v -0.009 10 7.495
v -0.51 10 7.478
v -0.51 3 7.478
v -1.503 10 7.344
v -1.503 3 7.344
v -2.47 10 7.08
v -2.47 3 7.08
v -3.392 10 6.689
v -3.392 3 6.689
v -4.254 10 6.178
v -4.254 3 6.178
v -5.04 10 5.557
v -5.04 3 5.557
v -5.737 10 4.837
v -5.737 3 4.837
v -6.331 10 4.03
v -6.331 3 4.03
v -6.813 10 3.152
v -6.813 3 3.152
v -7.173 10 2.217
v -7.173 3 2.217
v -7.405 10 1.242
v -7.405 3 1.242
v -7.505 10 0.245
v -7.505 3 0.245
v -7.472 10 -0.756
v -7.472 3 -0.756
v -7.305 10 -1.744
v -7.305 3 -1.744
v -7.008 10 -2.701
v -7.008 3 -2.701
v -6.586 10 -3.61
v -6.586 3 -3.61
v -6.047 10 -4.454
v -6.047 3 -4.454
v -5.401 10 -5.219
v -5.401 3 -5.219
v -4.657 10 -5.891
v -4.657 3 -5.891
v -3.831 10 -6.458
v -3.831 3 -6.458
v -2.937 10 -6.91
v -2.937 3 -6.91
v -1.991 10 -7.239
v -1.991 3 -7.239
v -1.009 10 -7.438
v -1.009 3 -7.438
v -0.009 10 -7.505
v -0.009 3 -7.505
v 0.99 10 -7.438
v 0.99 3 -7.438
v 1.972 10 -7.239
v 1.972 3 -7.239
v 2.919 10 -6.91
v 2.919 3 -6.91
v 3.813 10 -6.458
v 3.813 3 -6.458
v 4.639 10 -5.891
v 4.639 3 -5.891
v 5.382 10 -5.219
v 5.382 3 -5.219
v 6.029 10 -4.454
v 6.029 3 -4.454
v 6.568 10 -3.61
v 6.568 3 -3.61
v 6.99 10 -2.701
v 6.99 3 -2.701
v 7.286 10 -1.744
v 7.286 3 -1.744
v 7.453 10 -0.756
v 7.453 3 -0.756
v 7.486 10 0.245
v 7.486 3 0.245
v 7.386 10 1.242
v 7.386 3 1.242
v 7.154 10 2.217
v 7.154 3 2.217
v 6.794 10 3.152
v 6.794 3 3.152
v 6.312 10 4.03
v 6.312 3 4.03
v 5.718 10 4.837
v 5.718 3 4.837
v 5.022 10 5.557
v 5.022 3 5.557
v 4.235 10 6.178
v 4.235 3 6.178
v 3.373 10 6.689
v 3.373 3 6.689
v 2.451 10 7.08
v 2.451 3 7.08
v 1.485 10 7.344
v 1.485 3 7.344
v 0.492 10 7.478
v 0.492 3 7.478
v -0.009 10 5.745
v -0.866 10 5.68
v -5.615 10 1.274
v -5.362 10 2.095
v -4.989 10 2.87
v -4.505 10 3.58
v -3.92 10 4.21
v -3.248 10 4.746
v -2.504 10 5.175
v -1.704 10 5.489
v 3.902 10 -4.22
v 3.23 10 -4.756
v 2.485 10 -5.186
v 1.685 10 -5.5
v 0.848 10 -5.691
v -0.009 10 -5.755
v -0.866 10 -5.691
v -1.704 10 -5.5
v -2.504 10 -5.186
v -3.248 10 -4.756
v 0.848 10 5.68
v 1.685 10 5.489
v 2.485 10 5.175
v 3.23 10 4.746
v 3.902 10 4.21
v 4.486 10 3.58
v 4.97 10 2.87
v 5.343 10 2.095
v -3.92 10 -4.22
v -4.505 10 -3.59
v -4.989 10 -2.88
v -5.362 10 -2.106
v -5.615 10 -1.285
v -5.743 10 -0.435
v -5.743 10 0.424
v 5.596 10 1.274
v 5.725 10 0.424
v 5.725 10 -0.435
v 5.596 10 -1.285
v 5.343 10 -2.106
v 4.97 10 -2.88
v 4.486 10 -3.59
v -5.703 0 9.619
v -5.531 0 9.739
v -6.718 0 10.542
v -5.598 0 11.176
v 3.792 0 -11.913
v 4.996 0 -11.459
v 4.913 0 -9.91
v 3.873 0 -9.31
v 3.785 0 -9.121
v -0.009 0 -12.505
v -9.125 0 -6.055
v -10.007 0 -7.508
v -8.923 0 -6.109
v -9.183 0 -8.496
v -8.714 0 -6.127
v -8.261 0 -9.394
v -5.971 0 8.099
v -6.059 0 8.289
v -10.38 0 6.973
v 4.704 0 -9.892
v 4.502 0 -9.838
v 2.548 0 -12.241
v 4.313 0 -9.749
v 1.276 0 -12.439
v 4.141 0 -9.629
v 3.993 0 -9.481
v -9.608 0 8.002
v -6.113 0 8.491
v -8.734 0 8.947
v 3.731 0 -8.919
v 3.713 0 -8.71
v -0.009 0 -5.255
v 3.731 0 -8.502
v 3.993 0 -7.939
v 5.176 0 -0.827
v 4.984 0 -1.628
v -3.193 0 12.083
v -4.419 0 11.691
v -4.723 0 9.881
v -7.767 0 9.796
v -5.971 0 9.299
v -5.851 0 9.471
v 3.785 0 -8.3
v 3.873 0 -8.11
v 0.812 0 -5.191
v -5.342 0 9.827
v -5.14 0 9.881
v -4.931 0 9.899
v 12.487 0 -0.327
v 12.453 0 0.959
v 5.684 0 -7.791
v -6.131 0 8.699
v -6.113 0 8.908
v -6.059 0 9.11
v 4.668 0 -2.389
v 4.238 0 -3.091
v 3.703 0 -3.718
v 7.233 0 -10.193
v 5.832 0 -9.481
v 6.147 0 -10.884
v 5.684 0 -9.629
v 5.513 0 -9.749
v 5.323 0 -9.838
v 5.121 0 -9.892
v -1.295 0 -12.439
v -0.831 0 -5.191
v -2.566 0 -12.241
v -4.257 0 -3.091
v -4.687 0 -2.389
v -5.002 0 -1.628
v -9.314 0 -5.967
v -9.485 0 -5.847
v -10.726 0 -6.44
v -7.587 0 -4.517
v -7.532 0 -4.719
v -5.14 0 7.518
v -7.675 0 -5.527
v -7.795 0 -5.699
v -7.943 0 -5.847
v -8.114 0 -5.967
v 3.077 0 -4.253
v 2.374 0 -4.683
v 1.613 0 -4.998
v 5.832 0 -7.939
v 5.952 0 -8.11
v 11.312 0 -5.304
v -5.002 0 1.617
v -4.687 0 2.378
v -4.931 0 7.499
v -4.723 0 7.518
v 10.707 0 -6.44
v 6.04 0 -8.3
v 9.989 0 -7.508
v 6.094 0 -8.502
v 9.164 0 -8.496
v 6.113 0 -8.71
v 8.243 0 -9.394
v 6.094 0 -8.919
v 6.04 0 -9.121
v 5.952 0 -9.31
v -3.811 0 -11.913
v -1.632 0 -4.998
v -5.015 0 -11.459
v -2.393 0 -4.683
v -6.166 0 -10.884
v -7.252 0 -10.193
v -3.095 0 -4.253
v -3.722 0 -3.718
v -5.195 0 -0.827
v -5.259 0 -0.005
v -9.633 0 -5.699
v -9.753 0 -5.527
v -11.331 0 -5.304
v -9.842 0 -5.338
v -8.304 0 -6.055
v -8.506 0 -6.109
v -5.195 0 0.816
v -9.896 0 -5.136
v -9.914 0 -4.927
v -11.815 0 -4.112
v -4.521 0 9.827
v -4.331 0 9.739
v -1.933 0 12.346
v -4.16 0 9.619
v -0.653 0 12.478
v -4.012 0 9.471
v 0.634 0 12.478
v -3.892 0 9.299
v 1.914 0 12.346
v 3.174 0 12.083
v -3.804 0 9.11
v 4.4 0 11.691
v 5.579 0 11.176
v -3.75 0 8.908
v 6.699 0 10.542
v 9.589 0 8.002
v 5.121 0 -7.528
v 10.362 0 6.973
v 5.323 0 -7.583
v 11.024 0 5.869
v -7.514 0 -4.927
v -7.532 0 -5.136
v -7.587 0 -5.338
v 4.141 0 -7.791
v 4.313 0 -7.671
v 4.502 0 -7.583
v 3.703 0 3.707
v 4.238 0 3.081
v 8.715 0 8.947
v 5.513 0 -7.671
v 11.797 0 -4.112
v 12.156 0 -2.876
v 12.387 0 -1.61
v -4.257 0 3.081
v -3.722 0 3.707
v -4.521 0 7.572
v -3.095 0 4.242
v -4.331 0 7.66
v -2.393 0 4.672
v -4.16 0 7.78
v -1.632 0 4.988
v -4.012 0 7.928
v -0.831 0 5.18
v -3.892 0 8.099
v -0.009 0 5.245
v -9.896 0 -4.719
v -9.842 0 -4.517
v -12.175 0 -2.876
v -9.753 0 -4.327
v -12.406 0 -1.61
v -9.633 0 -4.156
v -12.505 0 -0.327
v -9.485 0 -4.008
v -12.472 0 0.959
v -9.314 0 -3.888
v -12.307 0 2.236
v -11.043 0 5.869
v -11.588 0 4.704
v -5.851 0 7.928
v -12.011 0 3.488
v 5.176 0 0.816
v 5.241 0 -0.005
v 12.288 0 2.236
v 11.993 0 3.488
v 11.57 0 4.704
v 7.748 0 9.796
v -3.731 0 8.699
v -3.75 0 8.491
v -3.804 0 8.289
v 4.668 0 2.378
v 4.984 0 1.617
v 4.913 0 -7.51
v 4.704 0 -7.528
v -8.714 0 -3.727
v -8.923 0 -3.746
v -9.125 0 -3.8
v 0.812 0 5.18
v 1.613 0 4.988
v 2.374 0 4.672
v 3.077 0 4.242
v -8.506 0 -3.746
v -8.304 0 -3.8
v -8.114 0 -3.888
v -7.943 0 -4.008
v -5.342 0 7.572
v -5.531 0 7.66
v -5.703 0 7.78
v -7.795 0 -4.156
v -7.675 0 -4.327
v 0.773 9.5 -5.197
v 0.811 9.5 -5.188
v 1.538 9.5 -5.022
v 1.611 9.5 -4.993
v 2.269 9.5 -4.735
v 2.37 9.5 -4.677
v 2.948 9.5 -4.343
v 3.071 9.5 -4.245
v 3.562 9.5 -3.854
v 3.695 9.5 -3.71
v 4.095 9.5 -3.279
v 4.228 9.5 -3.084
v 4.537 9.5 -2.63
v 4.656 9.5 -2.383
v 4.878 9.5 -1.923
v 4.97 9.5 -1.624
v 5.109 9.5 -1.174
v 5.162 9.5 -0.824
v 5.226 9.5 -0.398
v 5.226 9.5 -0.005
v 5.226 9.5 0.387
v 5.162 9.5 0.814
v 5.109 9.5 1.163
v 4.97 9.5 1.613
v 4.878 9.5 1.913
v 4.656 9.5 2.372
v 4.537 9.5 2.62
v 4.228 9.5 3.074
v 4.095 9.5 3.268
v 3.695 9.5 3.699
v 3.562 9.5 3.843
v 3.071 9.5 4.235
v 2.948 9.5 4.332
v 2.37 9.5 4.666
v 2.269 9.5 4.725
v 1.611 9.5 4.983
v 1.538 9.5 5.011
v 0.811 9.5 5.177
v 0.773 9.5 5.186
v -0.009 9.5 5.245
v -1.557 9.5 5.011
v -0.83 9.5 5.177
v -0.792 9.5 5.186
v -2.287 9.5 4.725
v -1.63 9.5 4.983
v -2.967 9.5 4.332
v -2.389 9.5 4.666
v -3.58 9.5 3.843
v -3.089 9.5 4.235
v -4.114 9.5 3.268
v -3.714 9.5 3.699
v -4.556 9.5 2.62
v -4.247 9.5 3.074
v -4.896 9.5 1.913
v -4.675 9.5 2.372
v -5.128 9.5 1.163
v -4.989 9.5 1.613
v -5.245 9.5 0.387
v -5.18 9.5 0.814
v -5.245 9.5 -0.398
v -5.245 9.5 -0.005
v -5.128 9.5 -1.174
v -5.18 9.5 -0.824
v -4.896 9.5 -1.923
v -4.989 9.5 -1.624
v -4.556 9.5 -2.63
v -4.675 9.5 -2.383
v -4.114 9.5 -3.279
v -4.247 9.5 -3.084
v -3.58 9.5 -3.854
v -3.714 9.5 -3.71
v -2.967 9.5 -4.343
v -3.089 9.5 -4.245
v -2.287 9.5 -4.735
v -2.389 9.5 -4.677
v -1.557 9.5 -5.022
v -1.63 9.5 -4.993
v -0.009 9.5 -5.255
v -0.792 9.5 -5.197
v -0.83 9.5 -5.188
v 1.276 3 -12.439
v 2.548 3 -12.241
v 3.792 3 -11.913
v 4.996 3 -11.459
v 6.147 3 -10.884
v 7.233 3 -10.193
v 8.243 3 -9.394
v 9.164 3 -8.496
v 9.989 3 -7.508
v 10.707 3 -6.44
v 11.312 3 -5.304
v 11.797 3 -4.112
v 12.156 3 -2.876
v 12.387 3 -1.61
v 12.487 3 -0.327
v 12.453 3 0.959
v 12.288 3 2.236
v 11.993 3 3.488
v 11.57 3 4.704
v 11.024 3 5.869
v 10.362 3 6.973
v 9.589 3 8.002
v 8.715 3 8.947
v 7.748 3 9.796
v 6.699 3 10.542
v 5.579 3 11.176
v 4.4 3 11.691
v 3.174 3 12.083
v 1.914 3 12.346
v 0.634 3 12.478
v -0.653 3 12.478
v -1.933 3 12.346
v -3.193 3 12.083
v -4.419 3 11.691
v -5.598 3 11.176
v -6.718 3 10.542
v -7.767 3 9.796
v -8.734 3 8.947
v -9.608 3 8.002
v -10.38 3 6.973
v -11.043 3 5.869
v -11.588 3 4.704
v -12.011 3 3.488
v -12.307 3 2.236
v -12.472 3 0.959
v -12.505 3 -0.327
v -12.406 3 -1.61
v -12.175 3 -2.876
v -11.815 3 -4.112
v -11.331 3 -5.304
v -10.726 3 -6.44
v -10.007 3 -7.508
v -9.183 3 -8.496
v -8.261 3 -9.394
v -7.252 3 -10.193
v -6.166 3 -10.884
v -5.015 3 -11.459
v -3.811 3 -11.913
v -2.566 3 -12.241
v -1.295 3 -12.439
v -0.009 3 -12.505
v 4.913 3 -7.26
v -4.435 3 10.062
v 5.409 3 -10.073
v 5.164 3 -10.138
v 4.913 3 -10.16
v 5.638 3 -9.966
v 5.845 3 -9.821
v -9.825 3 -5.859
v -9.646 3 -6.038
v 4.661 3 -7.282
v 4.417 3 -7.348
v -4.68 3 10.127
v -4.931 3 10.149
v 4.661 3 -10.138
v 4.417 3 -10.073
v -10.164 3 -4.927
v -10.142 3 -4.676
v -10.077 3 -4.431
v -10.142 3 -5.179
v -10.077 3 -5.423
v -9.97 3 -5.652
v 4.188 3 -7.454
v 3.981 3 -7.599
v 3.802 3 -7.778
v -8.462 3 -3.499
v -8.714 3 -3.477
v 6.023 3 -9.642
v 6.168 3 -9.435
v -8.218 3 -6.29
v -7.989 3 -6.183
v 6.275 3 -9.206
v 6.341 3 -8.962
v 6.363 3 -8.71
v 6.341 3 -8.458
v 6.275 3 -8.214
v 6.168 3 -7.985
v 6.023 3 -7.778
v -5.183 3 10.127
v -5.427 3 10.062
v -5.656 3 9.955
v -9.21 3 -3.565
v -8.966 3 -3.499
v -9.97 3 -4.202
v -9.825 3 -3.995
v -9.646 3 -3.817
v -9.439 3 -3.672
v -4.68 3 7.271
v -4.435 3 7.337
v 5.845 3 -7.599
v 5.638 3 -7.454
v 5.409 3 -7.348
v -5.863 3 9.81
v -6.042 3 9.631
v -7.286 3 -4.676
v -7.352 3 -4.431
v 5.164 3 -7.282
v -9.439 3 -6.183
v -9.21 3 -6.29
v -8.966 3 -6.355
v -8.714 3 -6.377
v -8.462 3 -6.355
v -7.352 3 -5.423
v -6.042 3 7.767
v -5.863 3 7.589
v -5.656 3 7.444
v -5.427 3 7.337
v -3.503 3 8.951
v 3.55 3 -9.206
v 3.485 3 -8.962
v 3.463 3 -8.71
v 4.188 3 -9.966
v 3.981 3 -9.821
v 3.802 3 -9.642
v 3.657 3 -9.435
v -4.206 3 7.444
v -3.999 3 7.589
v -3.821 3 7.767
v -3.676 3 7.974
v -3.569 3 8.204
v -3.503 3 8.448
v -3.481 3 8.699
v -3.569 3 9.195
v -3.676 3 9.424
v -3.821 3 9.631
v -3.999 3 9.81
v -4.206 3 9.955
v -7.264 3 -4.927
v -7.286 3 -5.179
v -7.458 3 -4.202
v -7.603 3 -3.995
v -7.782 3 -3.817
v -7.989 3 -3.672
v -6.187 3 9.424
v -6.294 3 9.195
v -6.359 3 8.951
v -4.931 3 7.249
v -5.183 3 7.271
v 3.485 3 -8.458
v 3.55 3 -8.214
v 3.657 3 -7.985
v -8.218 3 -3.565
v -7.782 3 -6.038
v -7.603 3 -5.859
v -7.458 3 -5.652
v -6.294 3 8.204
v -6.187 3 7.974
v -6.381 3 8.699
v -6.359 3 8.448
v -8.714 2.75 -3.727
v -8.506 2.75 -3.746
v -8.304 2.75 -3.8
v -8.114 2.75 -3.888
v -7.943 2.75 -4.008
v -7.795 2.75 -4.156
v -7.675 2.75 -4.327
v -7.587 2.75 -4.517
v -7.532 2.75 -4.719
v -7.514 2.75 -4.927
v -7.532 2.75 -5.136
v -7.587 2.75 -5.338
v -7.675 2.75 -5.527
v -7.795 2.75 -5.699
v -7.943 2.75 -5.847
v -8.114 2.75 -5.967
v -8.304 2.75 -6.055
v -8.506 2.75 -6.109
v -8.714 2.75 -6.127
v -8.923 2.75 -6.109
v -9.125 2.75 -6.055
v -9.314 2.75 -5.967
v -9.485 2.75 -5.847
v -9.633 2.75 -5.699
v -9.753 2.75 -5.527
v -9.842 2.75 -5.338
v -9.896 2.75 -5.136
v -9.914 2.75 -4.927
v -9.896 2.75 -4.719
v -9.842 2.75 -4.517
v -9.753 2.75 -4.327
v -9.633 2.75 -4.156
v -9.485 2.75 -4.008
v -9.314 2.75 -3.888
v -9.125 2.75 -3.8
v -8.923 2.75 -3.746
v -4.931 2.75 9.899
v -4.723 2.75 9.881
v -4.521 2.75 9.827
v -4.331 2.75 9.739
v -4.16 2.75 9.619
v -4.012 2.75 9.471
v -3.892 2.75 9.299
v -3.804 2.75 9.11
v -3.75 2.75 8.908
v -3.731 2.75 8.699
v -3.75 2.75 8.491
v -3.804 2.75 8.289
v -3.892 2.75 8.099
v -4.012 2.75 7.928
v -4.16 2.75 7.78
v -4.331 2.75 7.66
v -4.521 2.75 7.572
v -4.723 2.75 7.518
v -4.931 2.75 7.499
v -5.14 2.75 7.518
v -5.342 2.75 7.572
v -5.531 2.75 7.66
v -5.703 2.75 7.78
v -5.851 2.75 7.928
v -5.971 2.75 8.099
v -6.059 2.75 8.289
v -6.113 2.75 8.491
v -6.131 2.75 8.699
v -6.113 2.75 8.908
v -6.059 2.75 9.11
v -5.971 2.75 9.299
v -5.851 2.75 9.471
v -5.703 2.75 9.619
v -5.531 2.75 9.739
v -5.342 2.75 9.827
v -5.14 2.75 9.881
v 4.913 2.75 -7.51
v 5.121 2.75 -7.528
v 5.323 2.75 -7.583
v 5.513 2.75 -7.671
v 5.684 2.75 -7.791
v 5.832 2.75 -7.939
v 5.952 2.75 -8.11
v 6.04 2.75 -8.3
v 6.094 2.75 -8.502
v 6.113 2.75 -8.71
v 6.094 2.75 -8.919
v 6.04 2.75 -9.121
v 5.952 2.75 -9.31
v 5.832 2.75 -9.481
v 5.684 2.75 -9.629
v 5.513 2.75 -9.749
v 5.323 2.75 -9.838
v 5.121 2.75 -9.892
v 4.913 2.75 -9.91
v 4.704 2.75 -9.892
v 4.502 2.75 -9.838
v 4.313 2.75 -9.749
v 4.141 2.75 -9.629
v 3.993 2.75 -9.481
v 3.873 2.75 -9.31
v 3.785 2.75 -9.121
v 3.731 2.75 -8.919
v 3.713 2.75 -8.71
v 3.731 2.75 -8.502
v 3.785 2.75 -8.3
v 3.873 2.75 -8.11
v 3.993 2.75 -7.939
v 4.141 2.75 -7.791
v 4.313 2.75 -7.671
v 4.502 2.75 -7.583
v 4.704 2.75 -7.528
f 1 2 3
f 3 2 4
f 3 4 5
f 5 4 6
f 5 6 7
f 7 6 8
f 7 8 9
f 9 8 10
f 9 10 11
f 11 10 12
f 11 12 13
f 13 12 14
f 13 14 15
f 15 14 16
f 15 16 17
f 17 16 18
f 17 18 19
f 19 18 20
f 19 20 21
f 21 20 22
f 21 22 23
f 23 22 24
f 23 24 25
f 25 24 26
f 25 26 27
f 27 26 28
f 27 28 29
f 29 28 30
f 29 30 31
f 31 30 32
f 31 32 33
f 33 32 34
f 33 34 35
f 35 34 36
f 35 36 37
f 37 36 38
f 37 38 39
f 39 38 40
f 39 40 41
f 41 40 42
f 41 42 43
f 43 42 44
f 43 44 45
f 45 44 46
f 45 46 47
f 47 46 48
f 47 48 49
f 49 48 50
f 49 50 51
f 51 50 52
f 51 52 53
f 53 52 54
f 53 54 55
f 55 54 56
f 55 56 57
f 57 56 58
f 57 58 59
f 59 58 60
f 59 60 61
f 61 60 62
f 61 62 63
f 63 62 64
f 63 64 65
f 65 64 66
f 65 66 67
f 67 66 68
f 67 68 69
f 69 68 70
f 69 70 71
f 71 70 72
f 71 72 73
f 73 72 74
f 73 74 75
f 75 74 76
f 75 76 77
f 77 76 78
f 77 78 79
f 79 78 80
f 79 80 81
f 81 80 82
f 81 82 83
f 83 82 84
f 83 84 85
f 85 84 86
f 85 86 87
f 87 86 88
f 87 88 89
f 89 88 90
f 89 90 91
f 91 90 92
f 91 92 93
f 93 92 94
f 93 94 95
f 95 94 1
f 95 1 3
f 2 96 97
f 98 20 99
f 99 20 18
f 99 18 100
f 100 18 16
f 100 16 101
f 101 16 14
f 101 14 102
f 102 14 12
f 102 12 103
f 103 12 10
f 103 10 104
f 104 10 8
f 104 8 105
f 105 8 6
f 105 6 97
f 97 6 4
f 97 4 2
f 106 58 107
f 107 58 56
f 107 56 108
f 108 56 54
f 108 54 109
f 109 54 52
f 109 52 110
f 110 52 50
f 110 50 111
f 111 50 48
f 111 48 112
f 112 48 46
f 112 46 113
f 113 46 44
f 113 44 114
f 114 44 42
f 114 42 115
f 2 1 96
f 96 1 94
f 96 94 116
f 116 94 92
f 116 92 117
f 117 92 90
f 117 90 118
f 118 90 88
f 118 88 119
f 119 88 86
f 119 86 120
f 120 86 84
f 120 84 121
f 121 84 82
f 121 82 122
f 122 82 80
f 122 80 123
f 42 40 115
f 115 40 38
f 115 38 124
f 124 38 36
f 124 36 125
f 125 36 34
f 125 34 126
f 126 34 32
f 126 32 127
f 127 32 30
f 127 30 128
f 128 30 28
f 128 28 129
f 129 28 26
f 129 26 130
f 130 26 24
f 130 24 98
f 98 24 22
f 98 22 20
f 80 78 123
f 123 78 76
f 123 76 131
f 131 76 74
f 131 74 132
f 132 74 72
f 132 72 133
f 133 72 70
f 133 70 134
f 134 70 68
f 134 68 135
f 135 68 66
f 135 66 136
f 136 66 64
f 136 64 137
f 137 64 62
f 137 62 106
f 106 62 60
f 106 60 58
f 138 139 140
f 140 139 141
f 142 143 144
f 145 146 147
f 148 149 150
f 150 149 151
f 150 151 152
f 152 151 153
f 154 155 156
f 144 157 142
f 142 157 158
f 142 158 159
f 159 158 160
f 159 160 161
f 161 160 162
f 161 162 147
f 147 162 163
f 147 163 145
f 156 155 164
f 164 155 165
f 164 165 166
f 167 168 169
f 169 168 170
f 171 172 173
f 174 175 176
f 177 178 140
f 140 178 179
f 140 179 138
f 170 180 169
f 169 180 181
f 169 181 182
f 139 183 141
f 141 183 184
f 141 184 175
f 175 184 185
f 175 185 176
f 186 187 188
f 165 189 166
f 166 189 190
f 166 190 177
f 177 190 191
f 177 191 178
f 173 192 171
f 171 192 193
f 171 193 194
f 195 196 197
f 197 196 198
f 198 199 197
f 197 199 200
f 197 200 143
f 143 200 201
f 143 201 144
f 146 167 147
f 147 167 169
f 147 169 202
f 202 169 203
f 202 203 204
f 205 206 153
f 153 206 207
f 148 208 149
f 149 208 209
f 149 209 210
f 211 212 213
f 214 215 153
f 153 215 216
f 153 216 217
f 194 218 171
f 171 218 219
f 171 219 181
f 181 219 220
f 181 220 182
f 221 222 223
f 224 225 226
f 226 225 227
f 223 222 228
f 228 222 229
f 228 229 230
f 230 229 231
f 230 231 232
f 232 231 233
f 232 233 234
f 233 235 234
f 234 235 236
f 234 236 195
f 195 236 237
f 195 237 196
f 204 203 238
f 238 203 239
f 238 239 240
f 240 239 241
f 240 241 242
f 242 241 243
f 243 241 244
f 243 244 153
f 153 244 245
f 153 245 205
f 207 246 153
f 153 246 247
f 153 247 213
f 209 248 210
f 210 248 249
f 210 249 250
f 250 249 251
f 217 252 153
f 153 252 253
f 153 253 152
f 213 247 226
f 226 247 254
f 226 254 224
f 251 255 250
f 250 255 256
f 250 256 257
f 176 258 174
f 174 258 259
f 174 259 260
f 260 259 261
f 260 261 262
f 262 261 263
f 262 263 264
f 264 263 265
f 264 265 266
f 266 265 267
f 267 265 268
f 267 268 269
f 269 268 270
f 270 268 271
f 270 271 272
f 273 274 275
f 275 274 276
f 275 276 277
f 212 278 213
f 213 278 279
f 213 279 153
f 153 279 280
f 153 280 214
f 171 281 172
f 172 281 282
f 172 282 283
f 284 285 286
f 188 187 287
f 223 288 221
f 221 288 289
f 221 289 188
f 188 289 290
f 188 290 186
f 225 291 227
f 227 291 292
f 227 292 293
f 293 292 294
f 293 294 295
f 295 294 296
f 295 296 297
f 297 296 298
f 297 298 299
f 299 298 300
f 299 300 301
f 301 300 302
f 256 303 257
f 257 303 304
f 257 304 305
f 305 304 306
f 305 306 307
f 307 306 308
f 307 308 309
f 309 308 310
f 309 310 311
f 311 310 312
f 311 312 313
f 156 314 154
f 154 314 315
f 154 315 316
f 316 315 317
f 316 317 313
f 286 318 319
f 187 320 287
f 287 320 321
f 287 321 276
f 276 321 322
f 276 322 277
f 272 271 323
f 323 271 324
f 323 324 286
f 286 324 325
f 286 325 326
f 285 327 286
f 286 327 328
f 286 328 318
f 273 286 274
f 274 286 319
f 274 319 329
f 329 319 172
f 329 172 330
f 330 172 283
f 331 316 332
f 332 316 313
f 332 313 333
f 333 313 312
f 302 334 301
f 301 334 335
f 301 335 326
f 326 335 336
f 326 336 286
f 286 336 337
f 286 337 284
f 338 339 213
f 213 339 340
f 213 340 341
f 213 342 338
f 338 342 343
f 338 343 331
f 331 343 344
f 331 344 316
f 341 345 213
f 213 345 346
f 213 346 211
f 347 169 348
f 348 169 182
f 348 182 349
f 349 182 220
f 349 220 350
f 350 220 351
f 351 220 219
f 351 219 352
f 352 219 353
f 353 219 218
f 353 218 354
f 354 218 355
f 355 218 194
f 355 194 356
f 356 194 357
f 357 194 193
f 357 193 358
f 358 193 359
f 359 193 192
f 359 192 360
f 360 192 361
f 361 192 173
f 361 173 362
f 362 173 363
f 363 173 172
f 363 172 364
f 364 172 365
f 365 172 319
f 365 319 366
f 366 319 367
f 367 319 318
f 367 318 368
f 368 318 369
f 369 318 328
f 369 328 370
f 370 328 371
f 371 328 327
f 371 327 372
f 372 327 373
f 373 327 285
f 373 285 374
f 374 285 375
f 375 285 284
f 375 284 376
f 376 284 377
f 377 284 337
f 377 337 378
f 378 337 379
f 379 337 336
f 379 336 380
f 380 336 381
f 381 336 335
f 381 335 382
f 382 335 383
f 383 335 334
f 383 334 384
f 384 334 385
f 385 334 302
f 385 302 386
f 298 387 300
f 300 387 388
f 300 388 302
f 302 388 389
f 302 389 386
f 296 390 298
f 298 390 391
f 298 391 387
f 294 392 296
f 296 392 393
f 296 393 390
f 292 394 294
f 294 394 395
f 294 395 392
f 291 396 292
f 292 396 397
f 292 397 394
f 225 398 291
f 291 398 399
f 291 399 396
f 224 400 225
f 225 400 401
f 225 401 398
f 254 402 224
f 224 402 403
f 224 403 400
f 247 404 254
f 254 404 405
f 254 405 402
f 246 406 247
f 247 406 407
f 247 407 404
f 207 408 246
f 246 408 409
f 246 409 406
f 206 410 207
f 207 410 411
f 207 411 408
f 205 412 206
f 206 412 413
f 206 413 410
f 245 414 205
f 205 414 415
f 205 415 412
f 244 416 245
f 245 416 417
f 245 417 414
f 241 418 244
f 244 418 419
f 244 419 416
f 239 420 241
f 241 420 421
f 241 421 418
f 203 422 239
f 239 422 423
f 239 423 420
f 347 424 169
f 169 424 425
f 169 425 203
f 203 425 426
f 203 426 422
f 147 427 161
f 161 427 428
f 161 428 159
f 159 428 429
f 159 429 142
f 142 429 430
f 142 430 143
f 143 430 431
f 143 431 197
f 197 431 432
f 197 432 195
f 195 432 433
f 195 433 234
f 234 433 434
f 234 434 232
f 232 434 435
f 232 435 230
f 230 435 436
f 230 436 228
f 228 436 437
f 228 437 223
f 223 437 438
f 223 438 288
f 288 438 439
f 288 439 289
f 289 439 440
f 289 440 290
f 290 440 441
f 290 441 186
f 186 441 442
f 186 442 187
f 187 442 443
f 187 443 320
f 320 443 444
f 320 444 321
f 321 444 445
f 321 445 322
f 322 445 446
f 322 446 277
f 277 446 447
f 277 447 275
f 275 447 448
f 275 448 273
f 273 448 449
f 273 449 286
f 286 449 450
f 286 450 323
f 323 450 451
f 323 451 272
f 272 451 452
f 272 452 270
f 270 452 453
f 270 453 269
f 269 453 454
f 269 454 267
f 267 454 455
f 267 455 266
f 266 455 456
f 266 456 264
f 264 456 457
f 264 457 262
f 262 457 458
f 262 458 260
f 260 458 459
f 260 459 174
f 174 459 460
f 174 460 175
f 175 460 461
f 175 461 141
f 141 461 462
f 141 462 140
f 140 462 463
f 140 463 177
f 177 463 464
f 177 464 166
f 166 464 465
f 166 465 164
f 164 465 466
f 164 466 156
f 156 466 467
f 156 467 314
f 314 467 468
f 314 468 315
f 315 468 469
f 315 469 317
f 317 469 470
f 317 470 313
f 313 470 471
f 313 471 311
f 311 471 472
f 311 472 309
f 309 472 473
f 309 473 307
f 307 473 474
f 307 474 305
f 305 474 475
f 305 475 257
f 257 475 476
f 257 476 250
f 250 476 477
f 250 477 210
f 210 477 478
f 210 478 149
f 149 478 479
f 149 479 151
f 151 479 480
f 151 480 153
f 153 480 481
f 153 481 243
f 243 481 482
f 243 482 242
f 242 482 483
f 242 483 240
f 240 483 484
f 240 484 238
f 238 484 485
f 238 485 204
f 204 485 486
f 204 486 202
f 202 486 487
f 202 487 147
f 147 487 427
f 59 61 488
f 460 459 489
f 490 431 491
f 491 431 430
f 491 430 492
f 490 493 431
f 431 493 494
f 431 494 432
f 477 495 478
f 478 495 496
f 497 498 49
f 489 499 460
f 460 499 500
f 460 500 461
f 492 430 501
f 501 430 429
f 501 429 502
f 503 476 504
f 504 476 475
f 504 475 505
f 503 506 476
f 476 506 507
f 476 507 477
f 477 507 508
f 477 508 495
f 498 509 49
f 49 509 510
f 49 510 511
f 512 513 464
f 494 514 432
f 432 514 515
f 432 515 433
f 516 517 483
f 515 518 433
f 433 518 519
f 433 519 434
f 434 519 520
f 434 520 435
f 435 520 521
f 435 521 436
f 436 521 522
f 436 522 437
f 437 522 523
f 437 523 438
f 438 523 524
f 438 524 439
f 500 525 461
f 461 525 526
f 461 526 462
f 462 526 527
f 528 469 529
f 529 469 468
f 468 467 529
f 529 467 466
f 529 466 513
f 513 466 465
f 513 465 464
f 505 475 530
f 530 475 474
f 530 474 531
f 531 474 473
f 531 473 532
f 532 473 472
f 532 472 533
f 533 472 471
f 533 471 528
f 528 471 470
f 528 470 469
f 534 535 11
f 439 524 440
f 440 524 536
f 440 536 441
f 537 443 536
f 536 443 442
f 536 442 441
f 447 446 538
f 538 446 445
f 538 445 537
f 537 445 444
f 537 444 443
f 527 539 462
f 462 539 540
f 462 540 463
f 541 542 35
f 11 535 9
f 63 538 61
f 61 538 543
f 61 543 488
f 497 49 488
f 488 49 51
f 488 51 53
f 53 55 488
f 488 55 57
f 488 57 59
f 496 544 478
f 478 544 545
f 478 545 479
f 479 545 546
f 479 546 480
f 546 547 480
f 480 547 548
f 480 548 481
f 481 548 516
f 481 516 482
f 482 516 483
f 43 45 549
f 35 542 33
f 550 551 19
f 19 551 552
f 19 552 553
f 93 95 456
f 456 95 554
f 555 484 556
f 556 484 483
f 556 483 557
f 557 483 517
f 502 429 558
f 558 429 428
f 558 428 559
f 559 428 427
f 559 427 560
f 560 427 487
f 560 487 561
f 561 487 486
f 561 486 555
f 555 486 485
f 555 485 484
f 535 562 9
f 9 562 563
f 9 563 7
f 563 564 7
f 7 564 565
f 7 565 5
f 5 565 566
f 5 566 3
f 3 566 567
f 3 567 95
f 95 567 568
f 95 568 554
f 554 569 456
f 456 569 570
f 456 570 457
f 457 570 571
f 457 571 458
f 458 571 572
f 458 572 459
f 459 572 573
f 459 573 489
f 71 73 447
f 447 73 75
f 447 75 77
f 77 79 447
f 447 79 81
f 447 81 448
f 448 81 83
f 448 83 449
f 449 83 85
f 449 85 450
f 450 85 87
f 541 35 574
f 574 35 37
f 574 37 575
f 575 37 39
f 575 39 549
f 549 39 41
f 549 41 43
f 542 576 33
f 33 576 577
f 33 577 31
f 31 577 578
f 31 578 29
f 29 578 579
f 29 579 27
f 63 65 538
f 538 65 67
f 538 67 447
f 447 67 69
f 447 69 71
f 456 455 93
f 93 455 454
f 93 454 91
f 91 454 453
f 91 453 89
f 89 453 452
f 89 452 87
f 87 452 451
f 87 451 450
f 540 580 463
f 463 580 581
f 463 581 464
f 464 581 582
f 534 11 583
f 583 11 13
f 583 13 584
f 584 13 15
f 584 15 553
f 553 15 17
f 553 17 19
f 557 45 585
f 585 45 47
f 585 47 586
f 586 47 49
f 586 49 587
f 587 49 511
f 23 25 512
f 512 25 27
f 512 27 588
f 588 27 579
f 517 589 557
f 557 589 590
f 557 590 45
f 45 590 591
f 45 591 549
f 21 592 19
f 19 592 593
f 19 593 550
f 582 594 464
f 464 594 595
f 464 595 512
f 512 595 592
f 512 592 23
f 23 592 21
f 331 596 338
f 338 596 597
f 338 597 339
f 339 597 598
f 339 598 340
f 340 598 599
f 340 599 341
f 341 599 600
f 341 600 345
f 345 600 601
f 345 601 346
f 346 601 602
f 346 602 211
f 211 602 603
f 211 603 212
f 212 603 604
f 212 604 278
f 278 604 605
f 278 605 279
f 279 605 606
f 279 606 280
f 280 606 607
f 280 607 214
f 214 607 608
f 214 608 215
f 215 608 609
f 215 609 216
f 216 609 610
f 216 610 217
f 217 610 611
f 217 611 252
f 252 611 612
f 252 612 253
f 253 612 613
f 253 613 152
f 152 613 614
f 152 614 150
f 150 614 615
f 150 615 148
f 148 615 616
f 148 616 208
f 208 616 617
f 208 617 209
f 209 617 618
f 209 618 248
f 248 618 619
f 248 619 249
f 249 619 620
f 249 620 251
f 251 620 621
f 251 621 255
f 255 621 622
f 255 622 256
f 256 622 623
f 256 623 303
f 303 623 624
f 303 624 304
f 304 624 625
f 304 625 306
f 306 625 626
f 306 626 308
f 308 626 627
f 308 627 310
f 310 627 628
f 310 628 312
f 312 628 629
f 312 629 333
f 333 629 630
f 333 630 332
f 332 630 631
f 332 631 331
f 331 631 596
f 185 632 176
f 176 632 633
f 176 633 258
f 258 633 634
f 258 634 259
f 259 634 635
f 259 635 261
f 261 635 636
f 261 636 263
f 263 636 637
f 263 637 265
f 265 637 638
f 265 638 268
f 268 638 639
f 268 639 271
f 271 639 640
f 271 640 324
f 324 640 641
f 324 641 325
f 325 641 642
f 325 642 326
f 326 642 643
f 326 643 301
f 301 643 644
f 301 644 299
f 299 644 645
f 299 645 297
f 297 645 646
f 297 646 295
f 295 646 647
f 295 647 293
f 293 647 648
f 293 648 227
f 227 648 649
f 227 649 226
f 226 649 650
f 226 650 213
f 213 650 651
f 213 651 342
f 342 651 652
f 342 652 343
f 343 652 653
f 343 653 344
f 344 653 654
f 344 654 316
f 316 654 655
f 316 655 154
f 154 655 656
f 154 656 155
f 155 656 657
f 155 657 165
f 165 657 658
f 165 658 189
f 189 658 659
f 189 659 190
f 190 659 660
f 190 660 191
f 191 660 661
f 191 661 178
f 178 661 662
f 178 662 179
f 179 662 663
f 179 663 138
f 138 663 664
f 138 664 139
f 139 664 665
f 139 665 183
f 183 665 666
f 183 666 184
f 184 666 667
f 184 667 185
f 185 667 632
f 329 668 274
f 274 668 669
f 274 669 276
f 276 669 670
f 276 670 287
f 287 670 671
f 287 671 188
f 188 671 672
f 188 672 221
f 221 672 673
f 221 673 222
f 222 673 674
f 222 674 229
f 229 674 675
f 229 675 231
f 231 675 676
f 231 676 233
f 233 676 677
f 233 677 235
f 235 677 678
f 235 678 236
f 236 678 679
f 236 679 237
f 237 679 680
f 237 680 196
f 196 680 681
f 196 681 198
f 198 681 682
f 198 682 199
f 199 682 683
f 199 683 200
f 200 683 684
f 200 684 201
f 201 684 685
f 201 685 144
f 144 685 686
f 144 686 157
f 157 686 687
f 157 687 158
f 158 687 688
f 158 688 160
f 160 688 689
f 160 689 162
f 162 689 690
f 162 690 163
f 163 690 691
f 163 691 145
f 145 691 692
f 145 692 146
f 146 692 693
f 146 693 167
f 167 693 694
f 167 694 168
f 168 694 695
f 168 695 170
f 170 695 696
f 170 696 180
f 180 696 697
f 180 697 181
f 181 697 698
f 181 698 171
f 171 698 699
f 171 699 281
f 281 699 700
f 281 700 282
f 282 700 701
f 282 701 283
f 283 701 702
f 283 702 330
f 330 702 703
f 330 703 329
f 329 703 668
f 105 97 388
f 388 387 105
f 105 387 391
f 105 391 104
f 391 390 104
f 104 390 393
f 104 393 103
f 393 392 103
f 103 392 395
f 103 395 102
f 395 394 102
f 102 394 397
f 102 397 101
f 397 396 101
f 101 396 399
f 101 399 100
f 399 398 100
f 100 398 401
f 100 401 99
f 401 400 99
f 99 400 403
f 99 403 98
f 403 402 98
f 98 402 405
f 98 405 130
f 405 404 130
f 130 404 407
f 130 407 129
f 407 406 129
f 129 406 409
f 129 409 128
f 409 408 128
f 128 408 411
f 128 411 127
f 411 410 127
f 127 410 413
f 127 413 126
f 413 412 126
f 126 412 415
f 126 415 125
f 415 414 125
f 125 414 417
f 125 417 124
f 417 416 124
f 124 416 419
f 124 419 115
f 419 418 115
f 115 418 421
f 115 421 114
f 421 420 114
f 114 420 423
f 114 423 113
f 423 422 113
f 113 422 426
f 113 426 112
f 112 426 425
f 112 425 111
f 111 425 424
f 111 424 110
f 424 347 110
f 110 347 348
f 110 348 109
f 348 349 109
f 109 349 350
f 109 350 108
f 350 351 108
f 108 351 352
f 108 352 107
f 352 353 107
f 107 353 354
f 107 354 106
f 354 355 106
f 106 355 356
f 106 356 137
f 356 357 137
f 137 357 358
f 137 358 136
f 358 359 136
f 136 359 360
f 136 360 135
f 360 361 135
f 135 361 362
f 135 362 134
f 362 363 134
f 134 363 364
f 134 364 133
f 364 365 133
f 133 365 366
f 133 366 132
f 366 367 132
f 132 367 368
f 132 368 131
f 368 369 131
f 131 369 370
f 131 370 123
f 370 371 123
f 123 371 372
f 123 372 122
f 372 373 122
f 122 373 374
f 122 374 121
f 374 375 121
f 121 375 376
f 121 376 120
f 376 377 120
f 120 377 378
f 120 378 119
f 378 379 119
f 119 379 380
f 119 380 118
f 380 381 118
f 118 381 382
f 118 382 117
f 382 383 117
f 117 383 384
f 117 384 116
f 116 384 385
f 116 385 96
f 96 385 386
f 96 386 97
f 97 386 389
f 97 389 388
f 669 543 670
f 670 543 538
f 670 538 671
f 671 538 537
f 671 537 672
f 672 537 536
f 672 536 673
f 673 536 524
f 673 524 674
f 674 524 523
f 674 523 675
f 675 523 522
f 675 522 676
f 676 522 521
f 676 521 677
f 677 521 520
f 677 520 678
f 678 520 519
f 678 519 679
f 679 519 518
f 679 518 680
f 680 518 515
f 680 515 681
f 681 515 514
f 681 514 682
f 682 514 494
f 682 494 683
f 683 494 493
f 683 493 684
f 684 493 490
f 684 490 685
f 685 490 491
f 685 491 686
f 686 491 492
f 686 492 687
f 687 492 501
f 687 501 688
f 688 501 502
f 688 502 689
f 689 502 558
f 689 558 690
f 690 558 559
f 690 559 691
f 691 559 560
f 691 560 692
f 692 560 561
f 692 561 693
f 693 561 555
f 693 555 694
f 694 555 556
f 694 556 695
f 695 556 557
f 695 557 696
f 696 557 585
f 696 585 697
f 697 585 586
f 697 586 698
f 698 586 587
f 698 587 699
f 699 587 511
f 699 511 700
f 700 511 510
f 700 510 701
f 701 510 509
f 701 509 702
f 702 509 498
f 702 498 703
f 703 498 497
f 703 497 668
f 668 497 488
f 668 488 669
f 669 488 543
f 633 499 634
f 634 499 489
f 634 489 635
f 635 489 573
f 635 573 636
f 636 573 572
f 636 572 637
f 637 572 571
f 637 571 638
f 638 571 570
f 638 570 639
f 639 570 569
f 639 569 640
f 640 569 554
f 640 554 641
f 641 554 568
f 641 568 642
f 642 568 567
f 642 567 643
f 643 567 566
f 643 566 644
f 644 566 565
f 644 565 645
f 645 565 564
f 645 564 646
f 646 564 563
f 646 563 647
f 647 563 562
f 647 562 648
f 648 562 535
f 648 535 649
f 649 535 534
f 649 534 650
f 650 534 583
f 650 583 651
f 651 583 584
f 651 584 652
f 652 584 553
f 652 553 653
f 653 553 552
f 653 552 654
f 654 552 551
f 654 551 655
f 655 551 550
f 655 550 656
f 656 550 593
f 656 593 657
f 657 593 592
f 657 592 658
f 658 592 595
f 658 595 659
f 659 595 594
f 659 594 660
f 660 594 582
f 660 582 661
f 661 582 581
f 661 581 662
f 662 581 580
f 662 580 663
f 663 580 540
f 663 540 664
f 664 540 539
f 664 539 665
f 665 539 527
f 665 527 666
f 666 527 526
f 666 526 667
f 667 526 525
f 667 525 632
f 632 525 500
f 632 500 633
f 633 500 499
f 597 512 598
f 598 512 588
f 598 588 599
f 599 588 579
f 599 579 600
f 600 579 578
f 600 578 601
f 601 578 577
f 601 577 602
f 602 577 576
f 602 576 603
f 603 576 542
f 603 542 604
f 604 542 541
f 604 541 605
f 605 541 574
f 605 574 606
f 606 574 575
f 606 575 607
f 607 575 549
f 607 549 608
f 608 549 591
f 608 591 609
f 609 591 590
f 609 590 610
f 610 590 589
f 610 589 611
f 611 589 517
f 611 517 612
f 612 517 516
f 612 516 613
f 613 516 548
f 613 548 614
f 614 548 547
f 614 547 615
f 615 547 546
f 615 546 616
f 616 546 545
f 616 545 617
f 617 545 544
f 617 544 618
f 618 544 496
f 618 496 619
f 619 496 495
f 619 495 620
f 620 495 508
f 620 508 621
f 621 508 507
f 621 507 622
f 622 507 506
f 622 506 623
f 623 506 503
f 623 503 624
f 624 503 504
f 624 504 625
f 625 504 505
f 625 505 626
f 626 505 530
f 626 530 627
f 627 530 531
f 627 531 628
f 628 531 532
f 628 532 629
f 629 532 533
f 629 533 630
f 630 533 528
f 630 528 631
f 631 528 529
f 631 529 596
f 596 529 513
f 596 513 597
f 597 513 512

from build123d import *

# Parameters (mm, degrees)
SKETCH_1_R         = 7.5
SKETCH_1_R_2       = 5.25
EXTRUDE_1_DEPTH    = 10
SKETCH_2_R         = 12.5
SKETCH_2_R_2       = 7.5
EXTRUDE_2_DEPTH    = 3
HOLE_WIZARD_M2_1_D = 2.4
CHAMFER_1_SIZE     = 0.5
CHAMFER_2_SIZE     = 0.25


with BuildPart() as part:
    # 草图1 → 凸台-拉伸1 (new body)
    with BuildSketch(Plane(origin=(0, 0, 0), x_dir=(1, 0, 0), z_dir=(0, 1, 0))):
        Circle(SKETCH_1_R)
        Circle(SKETCH_1_R_2, mode=Mode.SUBTRACT)
    extrude(amount=EXTRUDE_1_DEPTH)

    # 草图2 → 凸台-拉伸2 (add)
    with BuildSketch(Plane.XZ):
        Circle(SKETCH_2_R)
        Circle(SKETCH_2_R_2, mode=Mode.SUBTRACT)
    extrude(amount=-EXTRUDE_2_DEPTH)

    # M2 间隙孔1 (through all)
    with Locations(Plane(origin=(-33.948689325, 3, -19.196001998), x_dir=(-0.49220518, 0, 0.870479213), z_dir=(0, 1, 0))):
        with Locations((-10.000000033, 38.999999994), (9.999999967, 38.999999994), (-3.3e-08, 28.999999994)):
            Hole(HOLE_WIZARD_M2_1_D / 2)

    # 倒角1
    chamfer_1_edges = [part.edges().sort_by_distance(p)[0] for p in [
        (-5.25, 10, 0),
    ]]
    chamfer(chamfer_1_edges, length=CHAMFER_1_SIZE)

    # 倒角2
    chamfer_2_edges = [part.edges().sort_by_distance(p)[0] for p in [
        (-9.295438348, 3, -3.877476747),
        (-5.512698019, 3, 9.749367187),
        (4.331405586, 3, -7.660217076),
    ]]
    chamfer(chamfer_2_edges, length=CHAMFER_2_SIZE)


solid = part.part
